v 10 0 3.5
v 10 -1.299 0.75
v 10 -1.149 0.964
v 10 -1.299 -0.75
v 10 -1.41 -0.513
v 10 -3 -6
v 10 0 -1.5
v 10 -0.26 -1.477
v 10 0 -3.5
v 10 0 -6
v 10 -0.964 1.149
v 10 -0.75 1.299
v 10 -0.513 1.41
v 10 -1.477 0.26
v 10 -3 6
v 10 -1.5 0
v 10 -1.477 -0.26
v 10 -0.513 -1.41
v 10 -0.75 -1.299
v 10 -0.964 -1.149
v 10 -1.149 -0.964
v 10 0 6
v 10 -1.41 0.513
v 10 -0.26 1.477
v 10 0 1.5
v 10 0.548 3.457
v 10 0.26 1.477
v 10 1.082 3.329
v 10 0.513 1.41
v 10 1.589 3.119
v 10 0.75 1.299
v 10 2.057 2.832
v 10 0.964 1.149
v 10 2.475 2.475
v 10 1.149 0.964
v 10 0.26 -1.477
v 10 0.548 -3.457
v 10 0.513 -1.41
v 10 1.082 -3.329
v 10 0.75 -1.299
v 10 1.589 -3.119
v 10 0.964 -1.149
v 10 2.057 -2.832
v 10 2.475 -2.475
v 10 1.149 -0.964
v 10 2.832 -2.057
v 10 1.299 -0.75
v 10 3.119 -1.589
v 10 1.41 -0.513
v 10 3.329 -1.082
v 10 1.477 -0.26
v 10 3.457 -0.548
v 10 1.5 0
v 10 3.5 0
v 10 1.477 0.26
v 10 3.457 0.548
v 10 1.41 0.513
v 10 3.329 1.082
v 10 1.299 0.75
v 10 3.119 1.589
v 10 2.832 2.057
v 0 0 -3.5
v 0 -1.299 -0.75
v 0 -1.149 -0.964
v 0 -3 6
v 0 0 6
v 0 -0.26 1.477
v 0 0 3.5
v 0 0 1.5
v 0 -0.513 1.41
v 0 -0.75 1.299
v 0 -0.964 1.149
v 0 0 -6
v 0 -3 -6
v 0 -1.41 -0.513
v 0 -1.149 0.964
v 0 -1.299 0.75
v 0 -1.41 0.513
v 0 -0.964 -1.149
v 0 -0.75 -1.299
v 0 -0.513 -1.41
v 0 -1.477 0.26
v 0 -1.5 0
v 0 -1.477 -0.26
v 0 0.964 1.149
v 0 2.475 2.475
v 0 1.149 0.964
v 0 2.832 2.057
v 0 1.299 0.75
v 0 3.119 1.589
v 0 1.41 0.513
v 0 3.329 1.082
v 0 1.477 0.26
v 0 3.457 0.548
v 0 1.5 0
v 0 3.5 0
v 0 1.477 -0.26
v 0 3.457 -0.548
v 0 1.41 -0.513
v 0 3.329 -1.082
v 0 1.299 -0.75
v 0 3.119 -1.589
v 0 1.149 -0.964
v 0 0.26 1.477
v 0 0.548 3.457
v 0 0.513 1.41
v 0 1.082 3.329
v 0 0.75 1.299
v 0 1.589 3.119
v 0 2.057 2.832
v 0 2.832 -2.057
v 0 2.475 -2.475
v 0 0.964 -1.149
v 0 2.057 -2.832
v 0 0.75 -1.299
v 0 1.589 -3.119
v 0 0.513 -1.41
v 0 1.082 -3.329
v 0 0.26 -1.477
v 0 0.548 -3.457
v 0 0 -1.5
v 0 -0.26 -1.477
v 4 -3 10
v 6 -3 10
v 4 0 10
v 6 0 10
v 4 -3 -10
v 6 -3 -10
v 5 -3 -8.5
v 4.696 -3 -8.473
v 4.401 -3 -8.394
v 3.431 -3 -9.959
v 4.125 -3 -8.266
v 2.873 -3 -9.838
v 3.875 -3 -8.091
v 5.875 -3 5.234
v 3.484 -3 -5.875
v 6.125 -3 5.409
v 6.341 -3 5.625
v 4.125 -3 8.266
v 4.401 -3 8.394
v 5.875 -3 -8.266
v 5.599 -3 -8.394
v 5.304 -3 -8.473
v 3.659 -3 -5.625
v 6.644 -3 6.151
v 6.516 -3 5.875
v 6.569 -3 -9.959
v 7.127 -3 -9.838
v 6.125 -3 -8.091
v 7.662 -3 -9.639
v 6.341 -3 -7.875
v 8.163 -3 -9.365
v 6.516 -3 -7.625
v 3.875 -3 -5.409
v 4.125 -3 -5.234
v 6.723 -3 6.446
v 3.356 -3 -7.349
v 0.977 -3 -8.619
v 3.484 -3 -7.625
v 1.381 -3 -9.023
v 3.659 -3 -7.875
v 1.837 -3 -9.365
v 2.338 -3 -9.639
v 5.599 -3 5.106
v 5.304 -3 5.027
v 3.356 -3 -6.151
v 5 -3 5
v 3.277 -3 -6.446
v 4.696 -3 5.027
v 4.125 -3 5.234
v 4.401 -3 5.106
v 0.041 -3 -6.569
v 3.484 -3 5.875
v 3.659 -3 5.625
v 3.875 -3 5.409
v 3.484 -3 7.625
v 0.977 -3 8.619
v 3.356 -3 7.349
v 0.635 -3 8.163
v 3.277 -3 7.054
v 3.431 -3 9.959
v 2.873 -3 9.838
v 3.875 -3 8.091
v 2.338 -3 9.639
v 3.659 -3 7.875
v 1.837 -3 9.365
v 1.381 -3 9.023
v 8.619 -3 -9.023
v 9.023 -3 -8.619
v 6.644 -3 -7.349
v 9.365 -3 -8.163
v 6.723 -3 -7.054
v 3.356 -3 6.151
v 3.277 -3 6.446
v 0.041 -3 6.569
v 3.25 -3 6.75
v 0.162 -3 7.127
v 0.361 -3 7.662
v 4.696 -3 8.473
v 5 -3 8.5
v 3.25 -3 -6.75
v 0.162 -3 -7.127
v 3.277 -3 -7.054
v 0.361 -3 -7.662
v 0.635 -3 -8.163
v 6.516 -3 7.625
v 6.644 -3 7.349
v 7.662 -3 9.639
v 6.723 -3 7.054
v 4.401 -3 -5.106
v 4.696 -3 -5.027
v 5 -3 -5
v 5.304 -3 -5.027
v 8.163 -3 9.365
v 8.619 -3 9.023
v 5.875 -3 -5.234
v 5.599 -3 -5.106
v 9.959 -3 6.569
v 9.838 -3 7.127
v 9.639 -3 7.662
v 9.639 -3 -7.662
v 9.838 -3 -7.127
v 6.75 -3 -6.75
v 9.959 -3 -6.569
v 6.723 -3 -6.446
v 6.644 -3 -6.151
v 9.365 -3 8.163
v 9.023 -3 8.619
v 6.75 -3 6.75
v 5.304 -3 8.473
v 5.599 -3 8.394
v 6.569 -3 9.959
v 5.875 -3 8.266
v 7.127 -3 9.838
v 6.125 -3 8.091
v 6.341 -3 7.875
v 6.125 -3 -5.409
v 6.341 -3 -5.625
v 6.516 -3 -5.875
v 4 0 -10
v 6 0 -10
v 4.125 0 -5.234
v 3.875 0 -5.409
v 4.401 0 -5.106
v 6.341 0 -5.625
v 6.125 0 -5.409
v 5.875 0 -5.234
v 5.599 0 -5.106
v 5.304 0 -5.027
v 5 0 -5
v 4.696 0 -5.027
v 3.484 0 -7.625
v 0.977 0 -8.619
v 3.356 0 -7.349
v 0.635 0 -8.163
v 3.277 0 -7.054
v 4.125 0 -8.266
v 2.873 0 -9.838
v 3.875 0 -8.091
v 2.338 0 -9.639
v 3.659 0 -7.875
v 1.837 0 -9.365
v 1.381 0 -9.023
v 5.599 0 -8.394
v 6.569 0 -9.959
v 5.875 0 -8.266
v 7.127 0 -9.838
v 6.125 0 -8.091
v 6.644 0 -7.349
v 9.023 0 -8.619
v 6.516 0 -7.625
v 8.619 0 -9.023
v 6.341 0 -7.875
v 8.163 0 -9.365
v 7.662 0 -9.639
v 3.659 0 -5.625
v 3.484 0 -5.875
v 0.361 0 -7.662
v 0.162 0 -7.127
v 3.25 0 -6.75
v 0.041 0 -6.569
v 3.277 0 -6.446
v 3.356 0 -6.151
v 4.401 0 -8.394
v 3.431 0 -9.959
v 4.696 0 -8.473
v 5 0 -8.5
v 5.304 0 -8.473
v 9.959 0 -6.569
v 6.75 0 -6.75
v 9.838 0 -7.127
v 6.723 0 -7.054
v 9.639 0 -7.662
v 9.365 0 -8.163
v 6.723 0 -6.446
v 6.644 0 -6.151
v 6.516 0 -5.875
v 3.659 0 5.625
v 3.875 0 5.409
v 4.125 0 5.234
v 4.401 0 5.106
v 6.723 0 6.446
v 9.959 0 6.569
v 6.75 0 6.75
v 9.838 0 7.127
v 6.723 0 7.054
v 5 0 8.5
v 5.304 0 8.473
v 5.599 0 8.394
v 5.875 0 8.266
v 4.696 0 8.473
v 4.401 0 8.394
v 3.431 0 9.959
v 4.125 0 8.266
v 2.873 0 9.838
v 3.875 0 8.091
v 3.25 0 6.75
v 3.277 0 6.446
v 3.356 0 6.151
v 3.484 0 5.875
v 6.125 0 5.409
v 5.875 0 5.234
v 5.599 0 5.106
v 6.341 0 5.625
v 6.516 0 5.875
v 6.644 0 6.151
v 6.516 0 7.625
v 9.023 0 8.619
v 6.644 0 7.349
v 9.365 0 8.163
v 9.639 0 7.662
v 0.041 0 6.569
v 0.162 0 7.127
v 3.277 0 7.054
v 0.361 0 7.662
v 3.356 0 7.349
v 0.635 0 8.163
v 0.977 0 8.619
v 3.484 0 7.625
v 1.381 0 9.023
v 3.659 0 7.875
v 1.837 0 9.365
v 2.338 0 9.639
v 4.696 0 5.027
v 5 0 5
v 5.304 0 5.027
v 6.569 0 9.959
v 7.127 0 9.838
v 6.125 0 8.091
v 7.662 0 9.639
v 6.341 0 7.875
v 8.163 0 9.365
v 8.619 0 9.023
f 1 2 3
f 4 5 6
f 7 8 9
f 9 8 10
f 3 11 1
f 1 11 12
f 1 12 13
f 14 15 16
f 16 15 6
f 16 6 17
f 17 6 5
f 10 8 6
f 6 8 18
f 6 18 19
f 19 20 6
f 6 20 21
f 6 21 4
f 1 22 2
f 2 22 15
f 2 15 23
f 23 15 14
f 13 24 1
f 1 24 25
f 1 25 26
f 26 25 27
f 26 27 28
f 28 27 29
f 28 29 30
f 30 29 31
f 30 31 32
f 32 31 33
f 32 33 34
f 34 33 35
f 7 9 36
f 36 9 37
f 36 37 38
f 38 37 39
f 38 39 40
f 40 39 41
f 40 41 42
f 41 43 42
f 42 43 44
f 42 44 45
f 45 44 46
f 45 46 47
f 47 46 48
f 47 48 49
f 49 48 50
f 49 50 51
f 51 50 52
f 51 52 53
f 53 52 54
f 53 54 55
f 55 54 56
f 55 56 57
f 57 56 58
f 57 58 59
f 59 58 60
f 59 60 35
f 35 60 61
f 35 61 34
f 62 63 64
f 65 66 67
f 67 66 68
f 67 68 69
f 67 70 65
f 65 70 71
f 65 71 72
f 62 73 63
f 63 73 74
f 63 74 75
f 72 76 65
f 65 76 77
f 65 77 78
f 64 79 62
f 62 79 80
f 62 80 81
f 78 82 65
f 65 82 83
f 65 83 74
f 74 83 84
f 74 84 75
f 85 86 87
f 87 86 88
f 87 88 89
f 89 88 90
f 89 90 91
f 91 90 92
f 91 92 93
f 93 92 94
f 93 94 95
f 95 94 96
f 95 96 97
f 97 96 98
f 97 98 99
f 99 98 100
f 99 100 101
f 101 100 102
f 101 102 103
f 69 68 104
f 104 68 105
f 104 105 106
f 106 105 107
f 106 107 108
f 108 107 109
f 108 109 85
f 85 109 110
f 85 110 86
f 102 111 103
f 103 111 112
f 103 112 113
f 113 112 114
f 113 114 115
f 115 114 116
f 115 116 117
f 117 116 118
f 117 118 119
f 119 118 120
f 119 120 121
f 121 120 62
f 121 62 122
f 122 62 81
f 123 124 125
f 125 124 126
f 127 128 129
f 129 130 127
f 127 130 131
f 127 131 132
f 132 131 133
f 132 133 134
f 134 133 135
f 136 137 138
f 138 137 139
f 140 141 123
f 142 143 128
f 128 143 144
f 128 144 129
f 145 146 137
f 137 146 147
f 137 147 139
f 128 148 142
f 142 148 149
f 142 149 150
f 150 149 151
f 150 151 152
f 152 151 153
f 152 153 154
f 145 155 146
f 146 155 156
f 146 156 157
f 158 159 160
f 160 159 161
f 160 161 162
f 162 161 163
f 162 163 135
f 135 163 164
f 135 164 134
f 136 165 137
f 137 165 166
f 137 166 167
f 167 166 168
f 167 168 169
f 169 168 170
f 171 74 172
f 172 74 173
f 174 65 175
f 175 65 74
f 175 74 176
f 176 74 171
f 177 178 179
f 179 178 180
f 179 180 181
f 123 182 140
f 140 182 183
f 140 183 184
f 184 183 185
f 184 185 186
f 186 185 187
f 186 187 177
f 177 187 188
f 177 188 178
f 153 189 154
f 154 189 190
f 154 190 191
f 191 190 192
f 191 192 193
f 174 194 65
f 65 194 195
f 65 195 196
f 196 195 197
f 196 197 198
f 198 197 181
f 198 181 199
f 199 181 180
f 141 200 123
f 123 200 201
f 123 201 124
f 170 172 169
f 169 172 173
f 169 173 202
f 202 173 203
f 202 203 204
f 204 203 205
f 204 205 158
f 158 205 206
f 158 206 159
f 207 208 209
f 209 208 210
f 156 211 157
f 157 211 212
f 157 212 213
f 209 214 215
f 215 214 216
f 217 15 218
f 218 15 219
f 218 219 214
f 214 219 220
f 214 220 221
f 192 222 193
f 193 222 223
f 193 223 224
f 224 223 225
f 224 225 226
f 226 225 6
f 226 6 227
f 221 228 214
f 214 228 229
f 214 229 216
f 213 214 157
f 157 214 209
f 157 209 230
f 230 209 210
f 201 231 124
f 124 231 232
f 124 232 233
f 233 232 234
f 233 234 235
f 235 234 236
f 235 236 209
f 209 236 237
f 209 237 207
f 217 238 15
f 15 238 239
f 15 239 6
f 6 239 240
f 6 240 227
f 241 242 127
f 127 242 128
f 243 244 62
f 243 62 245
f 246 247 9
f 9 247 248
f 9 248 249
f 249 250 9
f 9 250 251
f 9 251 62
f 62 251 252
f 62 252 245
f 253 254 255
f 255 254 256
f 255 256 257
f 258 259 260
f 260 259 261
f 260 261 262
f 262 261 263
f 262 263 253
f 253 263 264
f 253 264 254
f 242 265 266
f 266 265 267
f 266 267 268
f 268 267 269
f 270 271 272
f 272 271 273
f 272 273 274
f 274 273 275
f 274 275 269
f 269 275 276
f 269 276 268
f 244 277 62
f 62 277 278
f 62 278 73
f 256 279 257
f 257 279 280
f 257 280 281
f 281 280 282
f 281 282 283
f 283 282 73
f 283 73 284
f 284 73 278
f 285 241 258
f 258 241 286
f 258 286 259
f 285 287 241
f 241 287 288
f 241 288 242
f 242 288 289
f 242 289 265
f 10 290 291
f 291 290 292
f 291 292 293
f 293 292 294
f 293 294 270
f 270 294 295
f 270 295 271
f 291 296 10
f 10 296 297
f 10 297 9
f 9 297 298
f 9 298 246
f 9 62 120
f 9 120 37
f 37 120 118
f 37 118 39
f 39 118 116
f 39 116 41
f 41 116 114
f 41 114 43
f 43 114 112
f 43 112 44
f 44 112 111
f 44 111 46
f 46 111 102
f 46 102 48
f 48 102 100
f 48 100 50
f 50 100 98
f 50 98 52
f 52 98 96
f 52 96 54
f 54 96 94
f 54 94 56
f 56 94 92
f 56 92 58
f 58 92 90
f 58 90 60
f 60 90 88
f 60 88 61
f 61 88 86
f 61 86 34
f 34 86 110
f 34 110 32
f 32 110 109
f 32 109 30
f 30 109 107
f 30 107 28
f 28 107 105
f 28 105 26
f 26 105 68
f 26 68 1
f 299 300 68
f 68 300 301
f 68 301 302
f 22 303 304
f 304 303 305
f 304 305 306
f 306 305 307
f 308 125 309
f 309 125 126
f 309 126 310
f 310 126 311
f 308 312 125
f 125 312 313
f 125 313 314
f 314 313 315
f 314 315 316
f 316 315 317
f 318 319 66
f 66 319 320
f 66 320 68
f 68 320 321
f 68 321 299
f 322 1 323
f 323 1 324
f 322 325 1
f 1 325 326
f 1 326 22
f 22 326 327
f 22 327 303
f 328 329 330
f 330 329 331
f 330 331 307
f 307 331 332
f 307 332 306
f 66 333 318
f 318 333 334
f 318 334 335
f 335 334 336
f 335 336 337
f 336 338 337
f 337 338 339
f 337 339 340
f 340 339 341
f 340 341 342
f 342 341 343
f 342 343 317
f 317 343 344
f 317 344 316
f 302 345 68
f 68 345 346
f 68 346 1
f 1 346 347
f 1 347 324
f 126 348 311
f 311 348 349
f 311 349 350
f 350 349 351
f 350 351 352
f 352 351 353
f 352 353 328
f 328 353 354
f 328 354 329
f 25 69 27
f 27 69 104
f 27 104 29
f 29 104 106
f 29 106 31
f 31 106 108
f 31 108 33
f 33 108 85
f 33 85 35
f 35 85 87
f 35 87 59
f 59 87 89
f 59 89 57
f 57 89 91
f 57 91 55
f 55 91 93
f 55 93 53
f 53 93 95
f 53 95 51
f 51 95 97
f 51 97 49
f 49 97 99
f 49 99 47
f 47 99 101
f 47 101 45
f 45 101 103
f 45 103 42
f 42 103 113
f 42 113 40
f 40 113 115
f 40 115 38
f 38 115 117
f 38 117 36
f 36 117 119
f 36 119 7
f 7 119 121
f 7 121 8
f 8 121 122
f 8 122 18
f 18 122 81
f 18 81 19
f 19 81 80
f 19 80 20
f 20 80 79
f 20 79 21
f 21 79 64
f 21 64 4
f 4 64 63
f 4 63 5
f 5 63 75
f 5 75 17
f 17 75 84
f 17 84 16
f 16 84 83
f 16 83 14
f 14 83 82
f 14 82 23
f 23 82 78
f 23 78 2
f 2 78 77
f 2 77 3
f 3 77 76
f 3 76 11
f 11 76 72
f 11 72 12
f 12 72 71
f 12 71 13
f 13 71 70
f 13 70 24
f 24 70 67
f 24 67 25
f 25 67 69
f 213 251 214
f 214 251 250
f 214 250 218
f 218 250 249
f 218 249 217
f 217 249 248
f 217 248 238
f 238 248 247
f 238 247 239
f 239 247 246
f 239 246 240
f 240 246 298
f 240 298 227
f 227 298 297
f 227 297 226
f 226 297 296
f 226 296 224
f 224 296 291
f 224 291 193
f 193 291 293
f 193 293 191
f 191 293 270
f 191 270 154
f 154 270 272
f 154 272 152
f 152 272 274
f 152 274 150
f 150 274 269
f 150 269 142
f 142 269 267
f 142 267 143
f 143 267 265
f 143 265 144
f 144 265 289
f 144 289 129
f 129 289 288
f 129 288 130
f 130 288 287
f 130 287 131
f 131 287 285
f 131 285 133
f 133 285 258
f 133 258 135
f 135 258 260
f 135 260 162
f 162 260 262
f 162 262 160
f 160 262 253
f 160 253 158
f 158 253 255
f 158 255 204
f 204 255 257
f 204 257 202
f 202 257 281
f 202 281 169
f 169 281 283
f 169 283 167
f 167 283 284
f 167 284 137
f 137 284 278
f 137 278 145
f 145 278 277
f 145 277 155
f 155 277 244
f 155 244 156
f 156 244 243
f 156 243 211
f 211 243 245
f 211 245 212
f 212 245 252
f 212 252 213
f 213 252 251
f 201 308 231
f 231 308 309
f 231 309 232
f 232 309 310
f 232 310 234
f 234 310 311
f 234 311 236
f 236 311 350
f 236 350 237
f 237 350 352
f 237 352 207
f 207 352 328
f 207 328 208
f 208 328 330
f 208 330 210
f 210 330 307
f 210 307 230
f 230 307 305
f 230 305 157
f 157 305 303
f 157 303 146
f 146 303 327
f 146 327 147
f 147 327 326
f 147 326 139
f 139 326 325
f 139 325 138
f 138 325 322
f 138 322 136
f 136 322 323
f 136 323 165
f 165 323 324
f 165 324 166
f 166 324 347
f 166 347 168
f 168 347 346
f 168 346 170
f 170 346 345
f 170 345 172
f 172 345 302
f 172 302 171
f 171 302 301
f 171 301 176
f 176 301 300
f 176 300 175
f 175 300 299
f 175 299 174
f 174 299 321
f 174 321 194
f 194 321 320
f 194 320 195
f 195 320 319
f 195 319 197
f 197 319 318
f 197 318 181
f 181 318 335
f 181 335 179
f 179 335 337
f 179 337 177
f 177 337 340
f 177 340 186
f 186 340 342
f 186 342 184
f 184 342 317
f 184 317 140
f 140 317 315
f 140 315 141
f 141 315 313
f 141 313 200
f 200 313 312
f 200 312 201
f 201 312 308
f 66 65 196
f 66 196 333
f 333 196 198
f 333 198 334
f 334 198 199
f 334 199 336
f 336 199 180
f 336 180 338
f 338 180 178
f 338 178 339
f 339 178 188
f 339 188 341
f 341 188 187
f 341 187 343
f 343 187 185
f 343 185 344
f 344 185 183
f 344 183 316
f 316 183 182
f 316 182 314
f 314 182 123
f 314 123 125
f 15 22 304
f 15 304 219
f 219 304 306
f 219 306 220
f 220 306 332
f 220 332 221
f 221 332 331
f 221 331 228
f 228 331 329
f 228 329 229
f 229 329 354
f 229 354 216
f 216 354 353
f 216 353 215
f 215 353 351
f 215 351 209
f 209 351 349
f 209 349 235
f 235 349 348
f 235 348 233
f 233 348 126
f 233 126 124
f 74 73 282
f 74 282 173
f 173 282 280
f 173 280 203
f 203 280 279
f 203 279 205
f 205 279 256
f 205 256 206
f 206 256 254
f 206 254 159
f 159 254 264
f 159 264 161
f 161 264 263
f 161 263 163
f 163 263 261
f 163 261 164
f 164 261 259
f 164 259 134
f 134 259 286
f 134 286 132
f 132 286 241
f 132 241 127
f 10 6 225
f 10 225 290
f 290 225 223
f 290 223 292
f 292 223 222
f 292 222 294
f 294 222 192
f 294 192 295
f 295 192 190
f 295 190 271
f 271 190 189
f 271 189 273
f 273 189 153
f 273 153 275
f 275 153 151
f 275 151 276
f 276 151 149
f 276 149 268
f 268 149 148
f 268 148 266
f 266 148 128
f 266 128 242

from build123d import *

# Parameters (mm, degrees)
SKETCH_1_R          = 1.5
EXTRUDE_1_DEPTH     = 10
SKETCH_2_R          = 1.75
CUT_EXTRUDE_1_DEPTH = 15.568802284
FILLET_2_R          = 4


with BuildPart() as part:
    # Эскиз1 → Бобышка-Вытянуть1 (new body)
    with BuildSketch(Plane(origin=(0, 0, 0), x_dir=(0, 0, -1), z_dir=(1, 0, 0))):
        with BuildLine():
            Line((-10, -3), (10, -3))
            Line((10, -3), (10, 0))
            Line((10, 0), (3.5, 0))
            ThreePointArc((3.5, 0), (0, 3.5), (-3.5, 0))
            Line((-3.5, 0), (-10, 0))
            Line((-10, 0), (-10, -3))
        make_face()
        Circle(SKETCH_1_R, mode=Mode.SUBTRACT)
    extrude(amount=EXTRUDE_1_DEPTH)

    # Эскиз2 → Вырез-Вытянуть1 (cut, through all)
    with BuildSketch(Plane(origin=(0, 0, 0), x_dir=(1, 0, 0), z_dir=(0, 1, 0))):
        with Locations(Location((5, 6.75, 0), (0, 0, 270))):
            Circle(SKETCH_2_R)
        with Locations(Location((5, -6.75, 0), (0, 0, 270))):
            Circle(SKETCH_2_R)
    extrude(amount=-CUT_EXTRUDE_1_DEPTH, mode=Mode.SUBTRACT)

    # Скругление2
    fillet_2_edges = [part.edges().sort_by_distance(p)[0] for p in [
        (10, -1.5, -10),
        (10, -1.5, 10),
        (0, -1.5, -10),
        (0, -1.5, 10),
    ]]
    fillet(fillet_2_edges, radius=FILLET_2_R)


solid = part.part
